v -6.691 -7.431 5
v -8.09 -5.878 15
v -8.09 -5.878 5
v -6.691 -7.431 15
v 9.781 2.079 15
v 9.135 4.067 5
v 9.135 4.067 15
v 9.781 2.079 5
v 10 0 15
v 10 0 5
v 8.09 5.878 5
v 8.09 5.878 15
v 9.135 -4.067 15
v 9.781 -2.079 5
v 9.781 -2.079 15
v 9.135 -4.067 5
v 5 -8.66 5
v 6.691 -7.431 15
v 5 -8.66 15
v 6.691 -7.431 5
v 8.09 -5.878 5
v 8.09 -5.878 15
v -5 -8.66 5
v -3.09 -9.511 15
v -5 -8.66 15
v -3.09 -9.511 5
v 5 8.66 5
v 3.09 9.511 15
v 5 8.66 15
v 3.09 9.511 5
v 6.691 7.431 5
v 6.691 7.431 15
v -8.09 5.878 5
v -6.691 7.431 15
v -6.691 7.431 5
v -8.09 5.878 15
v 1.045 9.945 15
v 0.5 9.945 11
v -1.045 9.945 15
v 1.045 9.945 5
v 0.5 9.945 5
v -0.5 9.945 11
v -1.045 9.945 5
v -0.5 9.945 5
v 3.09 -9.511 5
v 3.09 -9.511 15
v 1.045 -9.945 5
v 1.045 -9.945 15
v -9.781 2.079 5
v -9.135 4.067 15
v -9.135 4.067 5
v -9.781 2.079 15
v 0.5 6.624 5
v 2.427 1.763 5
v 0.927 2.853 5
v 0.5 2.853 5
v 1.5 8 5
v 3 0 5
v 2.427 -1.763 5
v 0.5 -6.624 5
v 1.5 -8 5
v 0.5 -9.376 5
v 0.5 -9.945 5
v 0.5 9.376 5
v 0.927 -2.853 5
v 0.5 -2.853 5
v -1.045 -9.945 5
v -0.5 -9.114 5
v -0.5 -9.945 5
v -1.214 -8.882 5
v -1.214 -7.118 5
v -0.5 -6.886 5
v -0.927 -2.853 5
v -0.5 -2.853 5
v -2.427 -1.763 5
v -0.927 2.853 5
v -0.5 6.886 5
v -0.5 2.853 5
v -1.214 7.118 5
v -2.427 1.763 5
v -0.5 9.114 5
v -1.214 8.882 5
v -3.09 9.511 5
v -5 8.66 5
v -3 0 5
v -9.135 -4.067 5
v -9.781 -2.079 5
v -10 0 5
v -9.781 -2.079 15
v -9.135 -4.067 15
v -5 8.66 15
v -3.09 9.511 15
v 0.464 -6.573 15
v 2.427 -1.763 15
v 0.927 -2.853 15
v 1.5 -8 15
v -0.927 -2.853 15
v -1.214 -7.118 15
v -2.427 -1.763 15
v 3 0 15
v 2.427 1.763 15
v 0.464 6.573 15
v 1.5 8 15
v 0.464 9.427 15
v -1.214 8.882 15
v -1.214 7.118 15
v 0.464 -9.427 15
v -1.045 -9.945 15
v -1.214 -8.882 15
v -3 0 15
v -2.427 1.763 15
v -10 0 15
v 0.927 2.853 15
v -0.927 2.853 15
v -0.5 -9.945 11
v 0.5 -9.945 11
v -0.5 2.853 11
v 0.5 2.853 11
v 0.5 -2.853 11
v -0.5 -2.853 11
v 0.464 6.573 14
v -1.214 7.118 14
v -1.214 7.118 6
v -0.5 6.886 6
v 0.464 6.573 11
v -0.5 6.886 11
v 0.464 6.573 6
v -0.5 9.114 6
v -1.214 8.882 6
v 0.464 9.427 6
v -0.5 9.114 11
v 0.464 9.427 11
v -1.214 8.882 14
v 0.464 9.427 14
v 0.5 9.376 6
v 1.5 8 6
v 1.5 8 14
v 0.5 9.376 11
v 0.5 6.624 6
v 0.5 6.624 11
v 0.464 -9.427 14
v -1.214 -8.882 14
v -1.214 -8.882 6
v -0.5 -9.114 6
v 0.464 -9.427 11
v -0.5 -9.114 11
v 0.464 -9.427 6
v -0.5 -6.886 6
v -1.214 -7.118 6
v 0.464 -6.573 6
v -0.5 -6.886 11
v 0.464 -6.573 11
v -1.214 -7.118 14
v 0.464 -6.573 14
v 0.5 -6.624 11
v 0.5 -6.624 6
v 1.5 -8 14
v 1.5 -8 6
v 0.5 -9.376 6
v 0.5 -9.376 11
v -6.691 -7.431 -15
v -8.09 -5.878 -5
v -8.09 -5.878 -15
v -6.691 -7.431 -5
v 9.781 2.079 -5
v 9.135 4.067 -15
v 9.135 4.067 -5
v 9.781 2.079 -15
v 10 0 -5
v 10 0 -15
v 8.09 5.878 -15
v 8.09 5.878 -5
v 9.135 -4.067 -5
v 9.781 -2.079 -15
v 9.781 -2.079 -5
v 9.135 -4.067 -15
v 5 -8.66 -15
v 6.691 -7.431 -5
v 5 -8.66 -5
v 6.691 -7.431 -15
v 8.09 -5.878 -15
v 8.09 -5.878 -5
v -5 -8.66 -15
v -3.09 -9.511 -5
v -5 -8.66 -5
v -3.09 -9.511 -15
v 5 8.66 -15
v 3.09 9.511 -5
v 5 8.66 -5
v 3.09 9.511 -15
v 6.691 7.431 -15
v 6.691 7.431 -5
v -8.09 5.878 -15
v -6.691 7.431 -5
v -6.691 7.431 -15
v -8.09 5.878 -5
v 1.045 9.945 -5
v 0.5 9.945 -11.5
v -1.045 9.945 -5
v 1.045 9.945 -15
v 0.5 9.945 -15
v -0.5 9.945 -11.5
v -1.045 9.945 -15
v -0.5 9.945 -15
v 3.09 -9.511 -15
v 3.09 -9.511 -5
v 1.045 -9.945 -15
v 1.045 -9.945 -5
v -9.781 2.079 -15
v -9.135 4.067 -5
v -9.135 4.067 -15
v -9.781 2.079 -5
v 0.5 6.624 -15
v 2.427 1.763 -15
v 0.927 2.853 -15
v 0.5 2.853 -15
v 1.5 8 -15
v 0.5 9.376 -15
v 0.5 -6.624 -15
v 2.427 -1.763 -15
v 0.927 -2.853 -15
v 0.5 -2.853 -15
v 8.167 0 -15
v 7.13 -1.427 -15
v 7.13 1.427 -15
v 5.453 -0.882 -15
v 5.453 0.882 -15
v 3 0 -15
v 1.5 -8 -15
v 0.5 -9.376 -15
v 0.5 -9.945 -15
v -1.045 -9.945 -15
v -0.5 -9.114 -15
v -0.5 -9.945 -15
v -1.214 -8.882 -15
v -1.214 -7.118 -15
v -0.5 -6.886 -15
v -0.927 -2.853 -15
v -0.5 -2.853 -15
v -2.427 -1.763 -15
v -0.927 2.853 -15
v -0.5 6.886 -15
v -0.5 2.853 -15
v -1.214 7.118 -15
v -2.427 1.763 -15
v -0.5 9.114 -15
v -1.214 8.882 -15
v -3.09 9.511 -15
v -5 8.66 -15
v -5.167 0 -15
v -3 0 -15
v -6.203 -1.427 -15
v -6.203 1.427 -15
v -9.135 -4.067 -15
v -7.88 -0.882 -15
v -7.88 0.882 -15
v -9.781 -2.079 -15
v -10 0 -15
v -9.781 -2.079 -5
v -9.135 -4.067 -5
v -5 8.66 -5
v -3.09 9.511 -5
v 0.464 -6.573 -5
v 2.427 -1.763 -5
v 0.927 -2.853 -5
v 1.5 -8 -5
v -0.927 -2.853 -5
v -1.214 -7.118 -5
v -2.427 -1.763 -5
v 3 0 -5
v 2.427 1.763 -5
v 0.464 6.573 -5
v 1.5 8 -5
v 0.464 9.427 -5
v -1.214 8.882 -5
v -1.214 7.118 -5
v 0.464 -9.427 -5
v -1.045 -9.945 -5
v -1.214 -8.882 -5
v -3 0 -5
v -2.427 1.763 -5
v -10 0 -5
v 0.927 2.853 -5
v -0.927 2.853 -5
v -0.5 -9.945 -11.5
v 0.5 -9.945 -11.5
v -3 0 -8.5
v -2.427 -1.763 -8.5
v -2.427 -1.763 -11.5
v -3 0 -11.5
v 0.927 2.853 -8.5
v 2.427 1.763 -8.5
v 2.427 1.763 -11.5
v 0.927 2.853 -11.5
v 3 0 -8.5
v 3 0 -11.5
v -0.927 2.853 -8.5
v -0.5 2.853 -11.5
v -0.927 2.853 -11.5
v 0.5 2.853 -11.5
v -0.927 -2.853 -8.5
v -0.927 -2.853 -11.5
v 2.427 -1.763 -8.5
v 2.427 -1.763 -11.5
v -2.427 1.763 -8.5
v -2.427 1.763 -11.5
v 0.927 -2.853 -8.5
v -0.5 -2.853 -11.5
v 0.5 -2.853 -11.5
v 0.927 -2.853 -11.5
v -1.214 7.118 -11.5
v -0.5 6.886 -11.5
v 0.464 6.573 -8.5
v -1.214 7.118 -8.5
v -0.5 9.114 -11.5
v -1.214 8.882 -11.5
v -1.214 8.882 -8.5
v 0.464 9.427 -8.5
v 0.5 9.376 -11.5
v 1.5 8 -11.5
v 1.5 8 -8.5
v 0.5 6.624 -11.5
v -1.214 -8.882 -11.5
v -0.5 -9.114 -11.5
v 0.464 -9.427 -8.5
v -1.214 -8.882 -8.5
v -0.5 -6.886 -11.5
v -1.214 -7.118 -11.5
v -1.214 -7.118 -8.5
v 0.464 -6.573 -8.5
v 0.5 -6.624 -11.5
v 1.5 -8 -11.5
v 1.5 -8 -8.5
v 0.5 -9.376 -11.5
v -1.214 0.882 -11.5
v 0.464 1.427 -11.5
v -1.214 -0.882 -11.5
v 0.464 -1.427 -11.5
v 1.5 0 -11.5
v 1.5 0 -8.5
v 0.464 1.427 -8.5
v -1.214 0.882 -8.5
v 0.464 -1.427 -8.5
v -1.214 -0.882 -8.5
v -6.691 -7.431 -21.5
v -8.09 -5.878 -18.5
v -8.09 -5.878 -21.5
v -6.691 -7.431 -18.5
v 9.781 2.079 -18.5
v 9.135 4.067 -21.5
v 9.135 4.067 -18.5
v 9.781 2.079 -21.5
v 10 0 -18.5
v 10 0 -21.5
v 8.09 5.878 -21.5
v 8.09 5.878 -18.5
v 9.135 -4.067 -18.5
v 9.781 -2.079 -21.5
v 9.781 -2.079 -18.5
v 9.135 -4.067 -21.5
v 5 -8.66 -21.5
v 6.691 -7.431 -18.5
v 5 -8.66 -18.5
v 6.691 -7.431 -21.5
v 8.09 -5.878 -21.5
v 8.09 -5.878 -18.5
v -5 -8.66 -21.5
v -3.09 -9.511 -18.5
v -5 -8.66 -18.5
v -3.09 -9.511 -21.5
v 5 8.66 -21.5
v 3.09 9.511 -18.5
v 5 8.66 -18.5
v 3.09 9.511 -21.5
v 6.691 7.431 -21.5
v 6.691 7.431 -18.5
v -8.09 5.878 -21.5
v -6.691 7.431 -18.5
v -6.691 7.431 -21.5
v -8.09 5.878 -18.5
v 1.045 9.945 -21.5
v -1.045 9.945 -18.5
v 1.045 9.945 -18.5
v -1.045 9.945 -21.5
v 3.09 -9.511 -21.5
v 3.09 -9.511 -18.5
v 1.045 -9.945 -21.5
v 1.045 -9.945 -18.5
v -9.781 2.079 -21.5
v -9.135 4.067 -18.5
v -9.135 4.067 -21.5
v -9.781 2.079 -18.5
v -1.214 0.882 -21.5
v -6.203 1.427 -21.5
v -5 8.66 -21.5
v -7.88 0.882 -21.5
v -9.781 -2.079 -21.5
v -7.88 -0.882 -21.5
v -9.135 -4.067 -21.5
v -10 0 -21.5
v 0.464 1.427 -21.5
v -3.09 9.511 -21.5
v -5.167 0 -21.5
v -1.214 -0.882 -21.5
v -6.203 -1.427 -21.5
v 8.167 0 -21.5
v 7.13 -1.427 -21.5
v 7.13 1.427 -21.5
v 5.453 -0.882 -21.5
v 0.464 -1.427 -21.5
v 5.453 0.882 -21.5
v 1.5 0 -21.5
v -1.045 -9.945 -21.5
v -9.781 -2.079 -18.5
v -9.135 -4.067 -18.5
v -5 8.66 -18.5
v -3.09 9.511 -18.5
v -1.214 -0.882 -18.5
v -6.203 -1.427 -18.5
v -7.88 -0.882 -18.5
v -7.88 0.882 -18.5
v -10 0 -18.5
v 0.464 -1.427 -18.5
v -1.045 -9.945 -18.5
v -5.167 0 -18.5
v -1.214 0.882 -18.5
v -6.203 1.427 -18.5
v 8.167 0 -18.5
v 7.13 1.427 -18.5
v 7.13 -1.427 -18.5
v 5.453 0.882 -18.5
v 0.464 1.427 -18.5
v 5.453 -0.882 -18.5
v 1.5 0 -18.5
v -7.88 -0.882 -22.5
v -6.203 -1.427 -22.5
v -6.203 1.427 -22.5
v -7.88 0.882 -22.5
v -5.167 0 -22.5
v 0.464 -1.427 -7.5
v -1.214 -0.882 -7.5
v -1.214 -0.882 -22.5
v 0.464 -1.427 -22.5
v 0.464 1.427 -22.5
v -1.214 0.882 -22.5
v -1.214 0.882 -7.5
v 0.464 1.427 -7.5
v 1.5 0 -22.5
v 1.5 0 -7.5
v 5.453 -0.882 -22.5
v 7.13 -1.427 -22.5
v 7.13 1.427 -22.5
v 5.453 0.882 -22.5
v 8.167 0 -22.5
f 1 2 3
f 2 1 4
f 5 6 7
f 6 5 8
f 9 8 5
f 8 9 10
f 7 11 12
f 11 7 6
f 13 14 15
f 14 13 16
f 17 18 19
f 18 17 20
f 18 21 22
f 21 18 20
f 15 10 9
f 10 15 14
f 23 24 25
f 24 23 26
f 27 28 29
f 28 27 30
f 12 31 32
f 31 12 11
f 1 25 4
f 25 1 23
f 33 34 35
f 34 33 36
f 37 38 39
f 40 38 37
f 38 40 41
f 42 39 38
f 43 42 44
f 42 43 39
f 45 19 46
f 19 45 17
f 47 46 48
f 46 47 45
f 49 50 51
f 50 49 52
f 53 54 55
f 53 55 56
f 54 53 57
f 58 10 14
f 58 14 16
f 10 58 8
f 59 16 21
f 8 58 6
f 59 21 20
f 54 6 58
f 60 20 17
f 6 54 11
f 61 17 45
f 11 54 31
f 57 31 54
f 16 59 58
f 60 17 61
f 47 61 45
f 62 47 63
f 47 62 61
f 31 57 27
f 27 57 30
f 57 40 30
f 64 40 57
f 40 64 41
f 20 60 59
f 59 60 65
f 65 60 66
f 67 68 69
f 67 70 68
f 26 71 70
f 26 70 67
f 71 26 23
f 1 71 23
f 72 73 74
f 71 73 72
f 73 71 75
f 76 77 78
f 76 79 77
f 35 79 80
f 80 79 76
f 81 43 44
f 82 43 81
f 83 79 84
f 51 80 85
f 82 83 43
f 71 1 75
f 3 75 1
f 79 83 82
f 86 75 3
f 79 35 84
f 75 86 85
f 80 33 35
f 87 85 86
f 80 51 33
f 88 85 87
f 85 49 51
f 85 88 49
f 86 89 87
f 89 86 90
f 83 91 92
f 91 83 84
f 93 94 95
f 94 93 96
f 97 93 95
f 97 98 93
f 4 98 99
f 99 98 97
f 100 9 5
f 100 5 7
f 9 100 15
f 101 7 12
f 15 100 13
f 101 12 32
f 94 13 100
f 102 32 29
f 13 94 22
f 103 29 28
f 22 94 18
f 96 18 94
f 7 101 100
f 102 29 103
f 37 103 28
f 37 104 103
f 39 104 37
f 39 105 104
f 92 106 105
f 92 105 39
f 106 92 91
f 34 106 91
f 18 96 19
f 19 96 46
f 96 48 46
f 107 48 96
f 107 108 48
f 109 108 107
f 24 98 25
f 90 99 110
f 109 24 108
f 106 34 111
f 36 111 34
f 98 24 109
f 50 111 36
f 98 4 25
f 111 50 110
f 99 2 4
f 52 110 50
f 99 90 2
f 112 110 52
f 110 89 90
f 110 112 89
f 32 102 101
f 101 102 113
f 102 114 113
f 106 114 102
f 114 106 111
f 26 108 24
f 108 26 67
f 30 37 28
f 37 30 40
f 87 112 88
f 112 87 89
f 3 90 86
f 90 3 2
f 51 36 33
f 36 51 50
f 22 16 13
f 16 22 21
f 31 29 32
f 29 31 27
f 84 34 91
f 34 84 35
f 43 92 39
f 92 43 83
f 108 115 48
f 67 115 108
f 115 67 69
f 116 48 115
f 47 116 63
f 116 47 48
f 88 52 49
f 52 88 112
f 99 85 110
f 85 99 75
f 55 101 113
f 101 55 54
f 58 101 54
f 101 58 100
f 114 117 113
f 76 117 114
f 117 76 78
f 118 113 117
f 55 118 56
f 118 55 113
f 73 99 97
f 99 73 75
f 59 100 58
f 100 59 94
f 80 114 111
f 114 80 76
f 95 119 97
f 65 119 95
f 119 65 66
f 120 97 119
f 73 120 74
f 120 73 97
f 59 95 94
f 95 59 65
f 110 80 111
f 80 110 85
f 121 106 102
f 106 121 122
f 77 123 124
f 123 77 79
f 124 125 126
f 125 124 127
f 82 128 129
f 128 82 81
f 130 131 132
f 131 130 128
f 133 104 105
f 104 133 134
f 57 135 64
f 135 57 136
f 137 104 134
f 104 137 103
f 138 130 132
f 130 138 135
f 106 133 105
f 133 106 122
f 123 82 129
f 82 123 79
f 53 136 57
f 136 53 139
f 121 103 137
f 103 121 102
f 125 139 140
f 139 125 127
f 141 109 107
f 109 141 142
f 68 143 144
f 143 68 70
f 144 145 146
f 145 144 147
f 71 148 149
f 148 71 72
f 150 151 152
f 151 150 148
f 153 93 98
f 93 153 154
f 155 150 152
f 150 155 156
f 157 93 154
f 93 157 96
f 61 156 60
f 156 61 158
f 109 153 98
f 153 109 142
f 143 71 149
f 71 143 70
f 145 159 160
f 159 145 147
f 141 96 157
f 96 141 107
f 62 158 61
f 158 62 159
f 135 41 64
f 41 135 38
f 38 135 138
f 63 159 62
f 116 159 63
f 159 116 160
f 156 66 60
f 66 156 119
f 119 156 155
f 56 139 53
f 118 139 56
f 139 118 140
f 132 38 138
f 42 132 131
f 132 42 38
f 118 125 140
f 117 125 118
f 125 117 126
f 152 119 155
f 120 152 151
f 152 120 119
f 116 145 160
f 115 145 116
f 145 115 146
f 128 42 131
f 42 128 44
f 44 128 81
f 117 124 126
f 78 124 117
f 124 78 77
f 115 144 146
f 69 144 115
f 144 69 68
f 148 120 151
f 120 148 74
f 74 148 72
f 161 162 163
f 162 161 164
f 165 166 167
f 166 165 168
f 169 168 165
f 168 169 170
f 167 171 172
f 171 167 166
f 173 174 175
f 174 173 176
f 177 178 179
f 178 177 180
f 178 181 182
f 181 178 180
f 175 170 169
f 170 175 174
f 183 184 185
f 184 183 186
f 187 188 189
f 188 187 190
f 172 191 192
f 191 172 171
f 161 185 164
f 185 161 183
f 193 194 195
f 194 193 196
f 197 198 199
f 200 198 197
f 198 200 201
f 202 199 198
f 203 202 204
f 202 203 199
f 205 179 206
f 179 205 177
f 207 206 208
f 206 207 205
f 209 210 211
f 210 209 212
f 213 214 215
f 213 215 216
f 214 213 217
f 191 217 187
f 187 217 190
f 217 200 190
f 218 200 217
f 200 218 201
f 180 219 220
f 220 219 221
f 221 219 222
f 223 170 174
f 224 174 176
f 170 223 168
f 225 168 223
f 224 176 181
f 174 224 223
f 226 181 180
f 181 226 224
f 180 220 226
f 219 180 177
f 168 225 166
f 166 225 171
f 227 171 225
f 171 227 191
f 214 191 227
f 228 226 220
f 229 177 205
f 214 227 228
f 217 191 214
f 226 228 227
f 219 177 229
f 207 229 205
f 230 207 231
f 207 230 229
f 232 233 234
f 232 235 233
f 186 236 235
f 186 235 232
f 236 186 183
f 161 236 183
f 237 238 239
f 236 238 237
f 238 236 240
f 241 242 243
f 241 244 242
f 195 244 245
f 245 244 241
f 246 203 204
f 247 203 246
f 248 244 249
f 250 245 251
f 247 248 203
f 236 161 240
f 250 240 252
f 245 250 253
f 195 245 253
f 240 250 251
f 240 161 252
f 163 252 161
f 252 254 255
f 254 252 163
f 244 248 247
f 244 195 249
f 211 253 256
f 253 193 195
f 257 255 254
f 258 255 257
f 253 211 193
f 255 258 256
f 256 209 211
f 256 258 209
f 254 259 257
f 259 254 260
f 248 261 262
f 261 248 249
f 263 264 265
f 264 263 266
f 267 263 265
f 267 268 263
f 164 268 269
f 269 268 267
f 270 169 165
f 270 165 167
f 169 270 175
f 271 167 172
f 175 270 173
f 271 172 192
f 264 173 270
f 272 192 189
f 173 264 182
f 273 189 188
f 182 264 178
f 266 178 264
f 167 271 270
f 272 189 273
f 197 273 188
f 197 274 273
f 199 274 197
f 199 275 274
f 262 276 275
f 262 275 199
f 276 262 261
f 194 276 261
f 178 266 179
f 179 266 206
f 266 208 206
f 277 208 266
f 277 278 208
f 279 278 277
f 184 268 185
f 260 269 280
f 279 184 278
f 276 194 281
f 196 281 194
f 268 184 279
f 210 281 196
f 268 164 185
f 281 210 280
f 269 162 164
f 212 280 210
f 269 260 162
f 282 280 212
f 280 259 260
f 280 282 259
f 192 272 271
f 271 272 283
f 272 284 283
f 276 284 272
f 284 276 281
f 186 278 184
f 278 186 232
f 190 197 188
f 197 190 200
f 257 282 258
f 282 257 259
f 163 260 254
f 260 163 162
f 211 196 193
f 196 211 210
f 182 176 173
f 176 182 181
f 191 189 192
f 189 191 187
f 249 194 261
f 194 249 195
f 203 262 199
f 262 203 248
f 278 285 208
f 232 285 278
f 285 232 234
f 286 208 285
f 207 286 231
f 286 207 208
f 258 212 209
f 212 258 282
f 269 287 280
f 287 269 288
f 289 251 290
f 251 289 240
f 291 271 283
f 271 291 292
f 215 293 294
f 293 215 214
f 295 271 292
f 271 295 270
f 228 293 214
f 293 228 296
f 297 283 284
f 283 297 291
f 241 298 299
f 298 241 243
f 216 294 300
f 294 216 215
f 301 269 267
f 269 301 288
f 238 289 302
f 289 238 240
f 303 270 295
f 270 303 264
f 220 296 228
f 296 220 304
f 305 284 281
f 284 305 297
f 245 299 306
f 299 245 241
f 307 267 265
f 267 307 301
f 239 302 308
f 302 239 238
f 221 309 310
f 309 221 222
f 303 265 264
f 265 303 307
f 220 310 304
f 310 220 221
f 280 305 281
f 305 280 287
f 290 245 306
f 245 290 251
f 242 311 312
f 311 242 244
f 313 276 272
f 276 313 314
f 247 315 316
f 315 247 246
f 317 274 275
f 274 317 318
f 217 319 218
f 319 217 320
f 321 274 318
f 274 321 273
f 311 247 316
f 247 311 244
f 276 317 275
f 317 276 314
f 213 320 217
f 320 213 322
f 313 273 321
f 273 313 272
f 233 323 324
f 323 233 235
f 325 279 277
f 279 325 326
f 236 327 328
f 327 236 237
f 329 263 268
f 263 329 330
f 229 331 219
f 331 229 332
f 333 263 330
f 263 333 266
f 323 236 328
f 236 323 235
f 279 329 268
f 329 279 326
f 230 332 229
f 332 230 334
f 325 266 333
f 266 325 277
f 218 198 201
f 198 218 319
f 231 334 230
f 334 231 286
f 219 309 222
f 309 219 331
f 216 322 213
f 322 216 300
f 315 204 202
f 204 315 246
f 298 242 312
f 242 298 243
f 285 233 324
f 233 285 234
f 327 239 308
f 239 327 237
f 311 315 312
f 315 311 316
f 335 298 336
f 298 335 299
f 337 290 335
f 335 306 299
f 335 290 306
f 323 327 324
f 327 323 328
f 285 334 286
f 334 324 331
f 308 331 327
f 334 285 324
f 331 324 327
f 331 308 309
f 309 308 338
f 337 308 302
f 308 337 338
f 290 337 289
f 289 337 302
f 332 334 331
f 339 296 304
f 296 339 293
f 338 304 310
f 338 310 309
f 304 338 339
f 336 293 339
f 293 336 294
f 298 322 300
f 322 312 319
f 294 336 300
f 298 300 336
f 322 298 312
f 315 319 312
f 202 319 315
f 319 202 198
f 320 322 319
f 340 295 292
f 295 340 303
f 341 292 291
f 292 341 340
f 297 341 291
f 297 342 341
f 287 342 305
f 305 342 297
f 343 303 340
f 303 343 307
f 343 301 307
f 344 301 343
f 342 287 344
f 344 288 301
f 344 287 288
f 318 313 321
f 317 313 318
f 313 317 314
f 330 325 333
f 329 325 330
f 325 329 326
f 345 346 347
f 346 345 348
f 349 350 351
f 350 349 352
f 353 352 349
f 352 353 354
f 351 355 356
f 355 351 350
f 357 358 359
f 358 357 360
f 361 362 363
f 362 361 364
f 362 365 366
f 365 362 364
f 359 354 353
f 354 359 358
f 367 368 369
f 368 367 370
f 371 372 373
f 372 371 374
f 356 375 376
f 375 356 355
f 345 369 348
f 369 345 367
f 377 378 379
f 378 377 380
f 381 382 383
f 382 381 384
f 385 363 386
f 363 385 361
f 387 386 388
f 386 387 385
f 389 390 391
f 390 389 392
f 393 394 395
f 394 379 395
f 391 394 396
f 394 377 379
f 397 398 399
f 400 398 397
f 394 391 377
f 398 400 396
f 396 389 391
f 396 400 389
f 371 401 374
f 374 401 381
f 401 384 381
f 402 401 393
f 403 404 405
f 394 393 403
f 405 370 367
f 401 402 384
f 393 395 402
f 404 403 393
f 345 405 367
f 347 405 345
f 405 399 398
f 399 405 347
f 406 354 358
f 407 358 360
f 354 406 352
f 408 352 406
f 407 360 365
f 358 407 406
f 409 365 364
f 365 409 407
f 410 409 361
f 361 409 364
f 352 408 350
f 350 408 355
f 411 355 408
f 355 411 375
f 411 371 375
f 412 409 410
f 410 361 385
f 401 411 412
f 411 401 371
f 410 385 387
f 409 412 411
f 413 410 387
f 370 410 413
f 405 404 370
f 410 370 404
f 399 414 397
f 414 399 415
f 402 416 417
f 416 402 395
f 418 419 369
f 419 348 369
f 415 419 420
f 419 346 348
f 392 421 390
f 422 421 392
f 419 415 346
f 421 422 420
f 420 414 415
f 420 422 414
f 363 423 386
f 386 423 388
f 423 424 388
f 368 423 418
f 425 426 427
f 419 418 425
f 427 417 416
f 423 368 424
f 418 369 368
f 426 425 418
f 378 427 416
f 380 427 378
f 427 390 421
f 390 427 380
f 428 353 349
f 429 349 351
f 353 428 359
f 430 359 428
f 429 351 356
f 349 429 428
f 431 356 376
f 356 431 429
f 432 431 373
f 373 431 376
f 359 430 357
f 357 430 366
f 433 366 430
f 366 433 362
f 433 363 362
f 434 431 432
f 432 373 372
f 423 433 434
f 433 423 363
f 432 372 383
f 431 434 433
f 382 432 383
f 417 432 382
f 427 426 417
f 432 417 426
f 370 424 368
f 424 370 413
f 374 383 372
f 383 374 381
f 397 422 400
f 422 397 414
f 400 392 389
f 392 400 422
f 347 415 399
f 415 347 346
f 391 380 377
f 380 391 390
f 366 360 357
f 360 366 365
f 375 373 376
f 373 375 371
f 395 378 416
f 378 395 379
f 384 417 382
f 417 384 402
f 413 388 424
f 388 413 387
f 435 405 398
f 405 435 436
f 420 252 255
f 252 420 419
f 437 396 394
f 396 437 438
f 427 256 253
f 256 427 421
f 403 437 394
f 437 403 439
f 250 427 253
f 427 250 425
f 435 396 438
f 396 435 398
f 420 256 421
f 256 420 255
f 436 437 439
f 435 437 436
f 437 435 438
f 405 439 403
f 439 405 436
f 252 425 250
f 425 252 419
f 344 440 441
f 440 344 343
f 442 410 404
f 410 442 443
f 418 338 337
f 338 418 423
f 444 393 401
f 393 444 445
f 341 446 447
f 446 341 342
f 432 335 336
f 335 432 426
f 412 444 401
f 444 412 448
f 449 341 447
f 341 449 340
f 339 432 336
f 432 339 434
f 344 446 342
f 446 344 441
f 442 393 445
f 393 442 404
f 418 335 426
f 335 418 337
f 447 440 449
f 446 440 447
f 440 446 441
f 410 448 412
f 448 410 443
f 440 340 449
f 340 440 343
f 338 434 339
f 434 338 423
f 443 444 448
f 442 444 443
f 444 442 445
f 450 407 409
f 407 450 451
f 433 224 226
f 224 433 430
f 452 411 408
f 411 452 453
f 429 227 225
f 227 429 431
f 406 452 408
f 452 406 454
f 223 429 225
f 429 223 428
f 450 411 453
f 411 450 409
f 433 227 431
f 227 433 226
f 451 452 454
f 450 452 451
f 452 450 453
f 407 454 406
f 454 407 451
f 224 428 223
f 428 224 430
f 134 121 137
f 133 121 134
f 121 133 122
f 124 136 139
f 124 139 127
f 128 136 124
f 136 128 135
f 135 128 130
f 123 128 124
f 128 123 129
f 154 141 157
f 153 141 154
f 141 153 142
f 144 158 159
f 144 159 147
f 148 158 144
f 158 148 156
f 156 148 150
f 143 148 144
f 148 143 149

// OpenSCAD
// Parameters
clamp_diameter = 20;
clamp_height = 10;
shaft_hole_diameter = 6;
screw_hole_diameter = 3;
slit_width = 1;
flexible_element_thickness = 3;
pin_diameter = 3;
pin_length = 15;
screw_length = 8;
screw_offset = clamp_diameter / 2 - 2;

// Left Clamp
module left_clamp() {
    difference() {
        cylinder(d=clamp_diameter, h=clamp_height, center=true);
        cylinder(d=shaft_hole_diameter, h=clamp_height+2, center=true);
        translate([0, screw_offset, 0])
            cylinder(d=screw_hole_diameter, h=clamp_height+2, center=true);
        translate([0, -screw_offset, 0])
            cylinder(d=screw_hole_diameter, h=clamp_height+2, center=true);
        translate([0, 0, -clamp_height/2])
            cube([slit_width, clamp_diameter, clamp_height+2], center=true);
    }
}

// Right Clamp
module right_clamp() {
    left_clamp();
}

// Flexible Element
module flexible_element() {
    difference() {
        union() {
            translate([0, 0, -clamp_height])
                cylinder(d=clamp_diameter, h=flexible_element_thickness, center=true);
            translate([0, 0, -2*clamp_height])
                cylinder(d=clamp_diameter, h=flexible_element_thickness, center=true);
        }
        for (i = [-1, 0, 1]) {
            translate([i * clamp_diameter/3, 0, -1.5*clamp_height])
                rotate([0, 90, 0])
                cylinder(d=pin_diameter, h=clamp_diameter+2, center=true);
        }
        // Adding cutouts for flexibility
        for (i = [-1, 1]) {
            translate([i * clamp_diameter/4, 0, -1.5*clamp_height])
                rotate([0, 90, 0])
                cube([pin_diameter, clamp_diameter, flexible_element_thickness], center=true);
        }
    }
}

// Pin
module pin() {
    cylinder(d=pin_diameter, h=pin_length, center=true);
}

// Screw
module screw() {
    cylinder(d=screw_hole_diameter, h=screw_length, center=true);
}

// Assembly
module flexible_coupling() {
    translate([0, 0, clamp_height])
        left_clamp();
    translate([0, 0, -clamp_height])
        right_clamp();
    flexible_element();
    for (i = [-1, 0, 1]) {
        translate([i * clamp_diameter/3, 0, -1.5*clamp_height])
            pin();
    }
    translate([0, screw_offset, clamp_height])
        screw();
    translate([0, -screw_offset, clamp_height])
        screw();
}

// Render the model
flexible_coupling();
